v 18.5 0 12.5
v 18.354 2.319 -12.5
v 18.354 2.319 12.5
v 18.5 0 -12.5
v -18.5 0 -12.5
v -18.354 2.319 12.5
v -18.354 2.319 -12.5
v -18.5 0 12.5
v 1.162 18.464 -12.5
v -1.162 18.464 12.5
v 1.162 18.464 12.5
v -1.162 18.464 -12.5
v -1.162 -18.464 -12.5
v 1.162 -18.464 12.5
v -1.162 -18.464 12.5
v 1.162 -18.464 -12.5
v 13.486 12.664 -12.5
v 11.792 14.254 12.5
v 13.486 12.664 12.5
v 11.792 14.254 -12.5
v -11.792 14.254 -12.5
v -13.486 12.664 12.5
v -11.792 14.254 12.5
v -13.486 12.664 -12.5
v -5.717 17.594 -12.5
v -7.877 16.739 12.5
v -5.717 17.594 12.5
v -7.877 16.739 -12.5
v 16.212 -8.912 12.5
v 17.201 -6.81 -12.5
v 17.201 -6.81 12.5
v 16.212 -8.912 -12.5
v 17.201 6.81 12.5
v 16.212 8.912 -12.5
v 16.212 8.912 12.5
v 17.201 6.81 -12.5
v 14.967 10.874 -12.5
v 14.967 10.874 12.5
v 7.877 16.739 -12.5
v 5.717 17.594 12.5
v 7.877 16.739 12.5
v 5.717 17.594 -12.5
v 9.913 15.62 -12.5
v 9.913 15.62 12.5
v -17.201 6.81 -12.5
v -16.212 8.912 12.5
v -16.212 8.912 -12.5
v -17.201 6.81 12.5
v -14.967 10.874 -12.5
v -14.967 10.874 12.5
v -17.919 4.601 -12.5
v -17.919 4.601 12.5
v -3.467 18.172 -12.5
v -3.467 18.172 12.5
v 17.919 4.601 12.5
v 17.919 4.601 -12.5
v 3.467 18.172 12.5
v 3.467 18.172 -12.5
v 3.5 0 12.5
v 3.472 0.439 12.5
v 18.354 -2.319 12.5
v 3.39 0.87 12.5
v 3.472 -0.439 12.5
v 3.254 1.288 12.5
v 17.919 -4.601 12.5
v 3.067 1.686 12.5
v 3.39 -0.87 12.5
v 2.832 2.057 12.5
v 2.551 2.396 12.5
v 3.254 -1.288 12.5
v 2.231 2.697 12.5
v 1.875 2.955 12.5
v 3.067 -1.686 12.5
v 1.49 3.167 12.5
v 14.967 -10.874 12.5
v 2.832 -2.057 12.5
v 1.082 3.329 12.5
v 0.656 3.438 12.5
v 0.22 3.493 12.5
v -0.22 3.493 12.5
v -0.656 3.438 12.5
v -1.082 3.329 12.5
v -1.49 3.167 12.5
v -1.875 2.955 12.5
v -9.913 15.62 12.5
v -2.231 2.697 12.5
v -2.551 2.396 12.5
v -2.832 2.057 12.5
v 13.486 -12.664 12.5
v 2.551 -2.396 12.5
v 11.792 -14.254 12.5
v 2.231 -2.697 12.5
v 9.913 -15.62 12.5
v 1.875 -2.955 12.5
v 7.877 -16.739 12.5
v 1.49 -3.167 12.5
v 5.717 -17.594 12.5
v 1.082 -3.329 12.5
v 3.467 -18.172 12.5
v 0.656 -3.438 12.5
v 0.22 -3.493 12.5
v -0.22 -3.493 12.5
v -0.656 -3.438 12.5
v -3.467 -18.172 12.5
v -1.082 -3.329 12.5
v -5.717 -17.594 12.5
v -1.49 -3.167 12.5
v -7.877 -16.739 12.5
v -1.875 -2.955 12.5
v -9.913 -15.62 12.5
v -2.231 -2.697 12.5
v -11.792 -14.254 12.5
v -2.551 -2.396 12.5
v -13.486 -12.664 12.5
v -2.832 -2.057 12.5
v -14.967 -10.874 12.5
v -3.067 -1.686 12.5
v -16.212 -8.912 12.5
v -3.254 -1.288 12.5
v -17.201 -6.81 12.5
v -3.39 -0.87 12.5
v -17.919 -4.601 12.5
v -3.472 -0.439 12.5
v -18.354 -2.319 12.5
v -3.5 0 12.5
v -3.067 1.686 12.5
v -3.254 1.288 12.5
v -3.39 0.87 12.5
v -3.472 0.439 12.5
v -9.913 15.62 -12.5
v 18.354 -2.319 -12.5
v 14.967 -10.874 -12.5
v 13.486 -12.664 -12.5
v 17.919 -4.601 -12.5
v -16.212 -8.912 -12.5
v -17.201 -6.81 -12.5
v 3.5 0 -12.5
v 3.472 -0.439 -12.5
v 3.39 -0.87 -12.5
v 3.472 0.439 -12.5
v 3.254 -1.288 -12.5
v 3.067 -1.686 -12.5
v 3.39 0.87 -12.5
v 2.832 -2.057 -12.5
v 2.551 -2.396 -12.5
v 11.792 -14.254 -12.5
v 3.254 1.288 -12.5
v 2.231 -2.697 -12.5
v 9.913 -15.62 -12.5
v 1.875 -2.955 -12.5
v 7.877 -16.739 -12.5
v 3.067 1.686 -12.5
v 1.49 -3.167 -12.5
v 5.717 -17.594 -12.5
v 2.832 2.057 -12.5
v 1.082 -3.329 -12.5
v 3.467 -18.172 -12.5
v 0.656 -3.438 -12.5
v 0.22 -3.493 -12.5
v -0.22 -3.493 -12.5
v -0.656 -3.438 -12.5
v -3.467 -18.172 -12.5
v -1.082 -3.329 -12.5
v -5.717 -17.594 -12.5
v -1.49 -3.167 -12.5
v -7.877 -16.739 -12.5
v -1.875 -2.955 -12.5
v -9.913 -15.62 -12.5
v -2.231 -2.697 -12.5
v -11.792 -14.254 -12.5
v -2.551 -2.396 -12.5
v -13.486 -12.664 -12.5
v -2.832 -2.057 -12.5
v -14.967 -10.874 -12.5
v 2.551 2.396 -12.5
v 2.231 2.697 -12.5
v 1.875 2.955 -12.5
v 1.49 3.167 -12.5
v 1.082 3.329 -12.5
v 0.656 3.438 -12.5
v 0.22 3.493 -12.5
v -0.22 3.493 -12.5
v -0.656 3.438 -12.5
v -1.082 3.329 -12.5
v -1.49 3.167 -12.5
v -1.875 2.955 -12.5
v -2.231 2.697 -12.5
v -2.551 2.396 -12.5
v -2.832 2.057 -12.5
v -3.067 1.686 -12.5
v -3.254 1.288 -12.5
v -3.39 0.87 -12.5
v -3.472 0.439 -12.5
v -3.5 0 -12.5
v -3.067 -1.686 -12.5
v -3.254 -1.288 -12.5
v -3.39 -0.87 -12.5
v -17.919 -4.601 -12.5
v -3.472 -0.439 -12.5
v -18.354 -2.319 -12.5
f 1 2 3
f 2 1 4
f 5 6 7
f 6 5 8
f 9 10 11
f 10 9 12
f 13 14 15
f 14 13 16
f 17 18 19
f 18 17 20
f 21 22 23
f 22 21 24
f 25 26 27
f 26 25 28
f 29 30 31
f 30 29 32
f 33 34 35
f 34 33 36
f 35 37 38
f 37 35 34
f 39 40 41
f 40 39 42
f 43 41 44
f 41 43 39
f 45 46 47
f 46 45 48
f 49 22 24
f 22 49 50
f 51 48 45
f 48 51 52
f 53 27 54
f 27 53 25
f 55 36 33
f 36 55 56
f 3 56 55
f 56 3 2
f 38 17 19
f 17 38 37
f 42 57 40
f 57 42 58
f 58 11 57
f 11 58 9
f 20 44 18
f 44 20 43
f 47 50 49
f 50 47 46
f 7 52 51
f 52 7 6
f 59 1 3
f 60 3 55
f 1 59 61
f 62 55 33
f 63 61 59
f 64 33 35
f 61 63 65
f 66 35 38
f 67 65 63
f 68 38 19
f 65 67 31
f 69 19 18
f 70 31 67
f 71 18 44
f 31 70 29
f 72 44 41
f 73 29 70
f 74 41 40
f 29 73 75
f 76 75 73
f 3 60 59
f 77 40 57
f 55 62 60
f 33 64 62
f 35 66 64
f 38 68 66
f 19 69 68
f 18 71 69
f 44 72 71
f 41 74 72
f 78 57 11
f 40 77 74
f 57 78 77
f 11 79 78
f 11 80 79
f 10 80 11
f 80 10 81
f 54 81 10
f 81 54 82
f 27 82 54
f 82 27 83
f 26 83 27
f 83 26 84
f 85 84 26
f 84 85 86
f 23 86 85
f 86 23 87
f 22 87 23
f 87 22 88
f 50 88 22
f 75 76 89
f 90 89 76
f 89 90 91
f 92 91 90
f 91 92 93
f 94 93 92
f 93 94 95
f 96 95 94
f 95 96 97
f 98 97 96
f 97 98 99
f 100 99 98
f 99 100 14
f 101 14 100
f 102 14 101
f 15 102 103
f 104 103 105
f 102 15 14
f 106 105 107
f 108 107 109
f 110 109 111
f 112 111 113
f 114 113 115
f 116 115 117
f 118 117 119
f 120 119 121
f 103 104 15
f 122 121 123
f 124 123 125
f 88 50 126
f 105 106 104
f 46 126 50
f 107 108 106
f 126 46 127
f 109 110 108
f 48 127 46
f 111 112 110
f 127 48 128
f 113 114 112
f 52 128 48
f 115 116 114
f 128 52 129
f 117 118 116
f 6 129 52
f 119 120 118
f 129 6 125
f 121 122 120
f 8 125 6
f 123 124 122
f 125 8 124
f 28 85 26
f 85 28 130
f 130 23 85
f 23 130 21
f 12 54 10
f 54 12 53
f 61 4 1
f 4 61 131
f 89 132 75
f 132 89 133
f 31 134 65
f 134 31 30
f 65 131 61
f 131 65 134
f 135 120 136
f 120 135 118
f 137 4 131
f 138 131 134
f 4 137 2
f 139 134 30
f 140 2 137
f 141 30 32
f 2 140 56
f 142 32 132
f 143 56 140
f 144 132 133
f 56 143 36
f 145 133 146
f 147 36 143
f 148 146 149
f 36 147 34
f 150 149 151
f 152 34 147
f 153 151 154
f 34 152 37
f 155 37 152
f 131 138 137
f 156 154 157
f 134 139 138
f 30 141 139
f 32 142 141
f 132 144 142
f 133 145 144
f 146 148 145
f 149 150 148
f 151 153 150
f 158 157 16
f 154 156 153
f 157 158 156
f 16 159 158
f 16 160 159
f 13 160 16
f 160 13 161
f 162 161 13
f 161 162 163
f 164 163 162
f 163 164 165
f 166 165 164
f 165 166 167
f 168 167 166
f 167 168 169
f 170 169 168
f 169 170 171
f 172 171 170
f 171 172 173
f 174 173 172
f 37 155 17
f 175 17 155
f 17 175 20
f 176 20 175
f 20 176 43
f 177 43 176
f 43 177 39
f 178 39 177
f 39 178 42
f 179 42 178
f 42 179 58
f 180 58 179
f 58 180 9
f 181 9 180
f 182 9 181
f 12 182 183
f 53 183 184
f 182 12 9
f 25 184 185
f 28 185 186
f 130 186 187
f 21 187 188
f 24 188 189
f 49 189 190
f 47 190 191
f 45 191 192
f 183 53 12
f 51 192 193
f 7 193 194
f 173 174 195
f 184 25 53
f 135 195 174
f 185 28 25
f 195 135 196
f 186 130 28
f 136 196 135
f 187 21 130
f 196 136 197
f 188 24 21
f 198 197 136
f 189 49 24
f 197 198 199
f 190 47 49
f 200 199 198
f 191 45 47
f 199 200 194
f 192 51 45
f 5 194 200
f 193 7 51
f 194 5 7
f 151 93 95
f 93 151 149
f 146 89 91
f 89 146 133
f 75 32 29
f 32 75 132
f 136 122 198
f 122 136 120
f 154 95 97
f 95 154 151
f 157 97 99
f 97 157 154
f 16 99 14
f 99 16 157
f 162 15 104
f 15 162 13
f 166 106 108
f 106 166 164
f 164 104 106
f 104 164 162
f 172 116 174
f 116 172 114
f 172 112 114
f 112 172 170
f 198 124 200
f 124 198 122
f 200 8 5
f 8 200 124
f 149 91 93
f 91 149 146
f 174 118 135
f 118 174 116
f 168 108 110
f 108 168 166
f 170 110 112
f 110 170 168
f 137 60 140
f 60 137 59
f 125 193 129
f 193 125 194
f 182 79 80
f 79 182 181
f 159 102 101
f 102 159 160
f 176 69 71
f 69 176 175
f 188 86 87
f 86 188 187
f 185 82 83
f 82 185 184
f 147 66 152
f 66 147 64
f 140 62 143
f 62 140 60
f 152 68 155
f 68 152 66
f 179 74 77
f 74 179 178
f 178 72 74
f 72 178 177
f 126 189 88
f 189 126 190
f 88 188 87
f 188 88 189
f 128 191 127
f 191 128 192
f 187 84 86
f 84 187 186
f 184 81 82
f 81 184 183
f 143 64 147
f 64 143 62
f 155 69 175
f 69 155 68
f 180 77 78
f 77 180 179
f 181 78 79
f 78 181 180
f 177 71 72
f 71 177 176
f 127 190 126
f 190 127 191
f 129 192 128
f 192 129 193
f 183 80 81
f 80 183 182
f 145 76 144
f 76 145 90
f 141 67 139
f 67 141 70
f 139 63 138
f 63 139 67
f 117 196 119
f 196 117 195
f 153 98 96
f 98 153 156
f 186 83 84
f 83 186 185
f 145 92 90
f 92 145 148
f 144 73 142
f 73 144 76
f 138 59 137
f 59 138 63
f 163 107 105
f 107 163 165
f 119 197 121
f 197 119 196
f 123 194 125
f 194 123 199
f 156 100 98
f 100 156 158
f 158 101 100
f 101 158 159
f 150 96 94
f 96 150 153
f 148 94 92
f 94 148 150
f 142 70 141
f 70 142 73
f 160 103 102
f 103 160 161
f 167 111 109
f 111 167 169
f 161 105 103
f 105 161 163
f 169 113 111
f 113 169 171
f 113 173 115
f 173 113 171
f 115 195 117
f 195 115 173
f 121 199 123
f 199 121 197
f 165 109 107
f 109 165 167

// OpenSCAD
$fn = 50;


difference() {
	union() {
		translate(v = [0, 0, -12.5000000000]) {
			cylinder(h = 25, r = 18.5000000000);
		}
	}
	union() {
		translate(v = [0, 0, -100.0000000000]) {
			cylinder(h = 200, r = 3.5000000000);
		}
	}
}
